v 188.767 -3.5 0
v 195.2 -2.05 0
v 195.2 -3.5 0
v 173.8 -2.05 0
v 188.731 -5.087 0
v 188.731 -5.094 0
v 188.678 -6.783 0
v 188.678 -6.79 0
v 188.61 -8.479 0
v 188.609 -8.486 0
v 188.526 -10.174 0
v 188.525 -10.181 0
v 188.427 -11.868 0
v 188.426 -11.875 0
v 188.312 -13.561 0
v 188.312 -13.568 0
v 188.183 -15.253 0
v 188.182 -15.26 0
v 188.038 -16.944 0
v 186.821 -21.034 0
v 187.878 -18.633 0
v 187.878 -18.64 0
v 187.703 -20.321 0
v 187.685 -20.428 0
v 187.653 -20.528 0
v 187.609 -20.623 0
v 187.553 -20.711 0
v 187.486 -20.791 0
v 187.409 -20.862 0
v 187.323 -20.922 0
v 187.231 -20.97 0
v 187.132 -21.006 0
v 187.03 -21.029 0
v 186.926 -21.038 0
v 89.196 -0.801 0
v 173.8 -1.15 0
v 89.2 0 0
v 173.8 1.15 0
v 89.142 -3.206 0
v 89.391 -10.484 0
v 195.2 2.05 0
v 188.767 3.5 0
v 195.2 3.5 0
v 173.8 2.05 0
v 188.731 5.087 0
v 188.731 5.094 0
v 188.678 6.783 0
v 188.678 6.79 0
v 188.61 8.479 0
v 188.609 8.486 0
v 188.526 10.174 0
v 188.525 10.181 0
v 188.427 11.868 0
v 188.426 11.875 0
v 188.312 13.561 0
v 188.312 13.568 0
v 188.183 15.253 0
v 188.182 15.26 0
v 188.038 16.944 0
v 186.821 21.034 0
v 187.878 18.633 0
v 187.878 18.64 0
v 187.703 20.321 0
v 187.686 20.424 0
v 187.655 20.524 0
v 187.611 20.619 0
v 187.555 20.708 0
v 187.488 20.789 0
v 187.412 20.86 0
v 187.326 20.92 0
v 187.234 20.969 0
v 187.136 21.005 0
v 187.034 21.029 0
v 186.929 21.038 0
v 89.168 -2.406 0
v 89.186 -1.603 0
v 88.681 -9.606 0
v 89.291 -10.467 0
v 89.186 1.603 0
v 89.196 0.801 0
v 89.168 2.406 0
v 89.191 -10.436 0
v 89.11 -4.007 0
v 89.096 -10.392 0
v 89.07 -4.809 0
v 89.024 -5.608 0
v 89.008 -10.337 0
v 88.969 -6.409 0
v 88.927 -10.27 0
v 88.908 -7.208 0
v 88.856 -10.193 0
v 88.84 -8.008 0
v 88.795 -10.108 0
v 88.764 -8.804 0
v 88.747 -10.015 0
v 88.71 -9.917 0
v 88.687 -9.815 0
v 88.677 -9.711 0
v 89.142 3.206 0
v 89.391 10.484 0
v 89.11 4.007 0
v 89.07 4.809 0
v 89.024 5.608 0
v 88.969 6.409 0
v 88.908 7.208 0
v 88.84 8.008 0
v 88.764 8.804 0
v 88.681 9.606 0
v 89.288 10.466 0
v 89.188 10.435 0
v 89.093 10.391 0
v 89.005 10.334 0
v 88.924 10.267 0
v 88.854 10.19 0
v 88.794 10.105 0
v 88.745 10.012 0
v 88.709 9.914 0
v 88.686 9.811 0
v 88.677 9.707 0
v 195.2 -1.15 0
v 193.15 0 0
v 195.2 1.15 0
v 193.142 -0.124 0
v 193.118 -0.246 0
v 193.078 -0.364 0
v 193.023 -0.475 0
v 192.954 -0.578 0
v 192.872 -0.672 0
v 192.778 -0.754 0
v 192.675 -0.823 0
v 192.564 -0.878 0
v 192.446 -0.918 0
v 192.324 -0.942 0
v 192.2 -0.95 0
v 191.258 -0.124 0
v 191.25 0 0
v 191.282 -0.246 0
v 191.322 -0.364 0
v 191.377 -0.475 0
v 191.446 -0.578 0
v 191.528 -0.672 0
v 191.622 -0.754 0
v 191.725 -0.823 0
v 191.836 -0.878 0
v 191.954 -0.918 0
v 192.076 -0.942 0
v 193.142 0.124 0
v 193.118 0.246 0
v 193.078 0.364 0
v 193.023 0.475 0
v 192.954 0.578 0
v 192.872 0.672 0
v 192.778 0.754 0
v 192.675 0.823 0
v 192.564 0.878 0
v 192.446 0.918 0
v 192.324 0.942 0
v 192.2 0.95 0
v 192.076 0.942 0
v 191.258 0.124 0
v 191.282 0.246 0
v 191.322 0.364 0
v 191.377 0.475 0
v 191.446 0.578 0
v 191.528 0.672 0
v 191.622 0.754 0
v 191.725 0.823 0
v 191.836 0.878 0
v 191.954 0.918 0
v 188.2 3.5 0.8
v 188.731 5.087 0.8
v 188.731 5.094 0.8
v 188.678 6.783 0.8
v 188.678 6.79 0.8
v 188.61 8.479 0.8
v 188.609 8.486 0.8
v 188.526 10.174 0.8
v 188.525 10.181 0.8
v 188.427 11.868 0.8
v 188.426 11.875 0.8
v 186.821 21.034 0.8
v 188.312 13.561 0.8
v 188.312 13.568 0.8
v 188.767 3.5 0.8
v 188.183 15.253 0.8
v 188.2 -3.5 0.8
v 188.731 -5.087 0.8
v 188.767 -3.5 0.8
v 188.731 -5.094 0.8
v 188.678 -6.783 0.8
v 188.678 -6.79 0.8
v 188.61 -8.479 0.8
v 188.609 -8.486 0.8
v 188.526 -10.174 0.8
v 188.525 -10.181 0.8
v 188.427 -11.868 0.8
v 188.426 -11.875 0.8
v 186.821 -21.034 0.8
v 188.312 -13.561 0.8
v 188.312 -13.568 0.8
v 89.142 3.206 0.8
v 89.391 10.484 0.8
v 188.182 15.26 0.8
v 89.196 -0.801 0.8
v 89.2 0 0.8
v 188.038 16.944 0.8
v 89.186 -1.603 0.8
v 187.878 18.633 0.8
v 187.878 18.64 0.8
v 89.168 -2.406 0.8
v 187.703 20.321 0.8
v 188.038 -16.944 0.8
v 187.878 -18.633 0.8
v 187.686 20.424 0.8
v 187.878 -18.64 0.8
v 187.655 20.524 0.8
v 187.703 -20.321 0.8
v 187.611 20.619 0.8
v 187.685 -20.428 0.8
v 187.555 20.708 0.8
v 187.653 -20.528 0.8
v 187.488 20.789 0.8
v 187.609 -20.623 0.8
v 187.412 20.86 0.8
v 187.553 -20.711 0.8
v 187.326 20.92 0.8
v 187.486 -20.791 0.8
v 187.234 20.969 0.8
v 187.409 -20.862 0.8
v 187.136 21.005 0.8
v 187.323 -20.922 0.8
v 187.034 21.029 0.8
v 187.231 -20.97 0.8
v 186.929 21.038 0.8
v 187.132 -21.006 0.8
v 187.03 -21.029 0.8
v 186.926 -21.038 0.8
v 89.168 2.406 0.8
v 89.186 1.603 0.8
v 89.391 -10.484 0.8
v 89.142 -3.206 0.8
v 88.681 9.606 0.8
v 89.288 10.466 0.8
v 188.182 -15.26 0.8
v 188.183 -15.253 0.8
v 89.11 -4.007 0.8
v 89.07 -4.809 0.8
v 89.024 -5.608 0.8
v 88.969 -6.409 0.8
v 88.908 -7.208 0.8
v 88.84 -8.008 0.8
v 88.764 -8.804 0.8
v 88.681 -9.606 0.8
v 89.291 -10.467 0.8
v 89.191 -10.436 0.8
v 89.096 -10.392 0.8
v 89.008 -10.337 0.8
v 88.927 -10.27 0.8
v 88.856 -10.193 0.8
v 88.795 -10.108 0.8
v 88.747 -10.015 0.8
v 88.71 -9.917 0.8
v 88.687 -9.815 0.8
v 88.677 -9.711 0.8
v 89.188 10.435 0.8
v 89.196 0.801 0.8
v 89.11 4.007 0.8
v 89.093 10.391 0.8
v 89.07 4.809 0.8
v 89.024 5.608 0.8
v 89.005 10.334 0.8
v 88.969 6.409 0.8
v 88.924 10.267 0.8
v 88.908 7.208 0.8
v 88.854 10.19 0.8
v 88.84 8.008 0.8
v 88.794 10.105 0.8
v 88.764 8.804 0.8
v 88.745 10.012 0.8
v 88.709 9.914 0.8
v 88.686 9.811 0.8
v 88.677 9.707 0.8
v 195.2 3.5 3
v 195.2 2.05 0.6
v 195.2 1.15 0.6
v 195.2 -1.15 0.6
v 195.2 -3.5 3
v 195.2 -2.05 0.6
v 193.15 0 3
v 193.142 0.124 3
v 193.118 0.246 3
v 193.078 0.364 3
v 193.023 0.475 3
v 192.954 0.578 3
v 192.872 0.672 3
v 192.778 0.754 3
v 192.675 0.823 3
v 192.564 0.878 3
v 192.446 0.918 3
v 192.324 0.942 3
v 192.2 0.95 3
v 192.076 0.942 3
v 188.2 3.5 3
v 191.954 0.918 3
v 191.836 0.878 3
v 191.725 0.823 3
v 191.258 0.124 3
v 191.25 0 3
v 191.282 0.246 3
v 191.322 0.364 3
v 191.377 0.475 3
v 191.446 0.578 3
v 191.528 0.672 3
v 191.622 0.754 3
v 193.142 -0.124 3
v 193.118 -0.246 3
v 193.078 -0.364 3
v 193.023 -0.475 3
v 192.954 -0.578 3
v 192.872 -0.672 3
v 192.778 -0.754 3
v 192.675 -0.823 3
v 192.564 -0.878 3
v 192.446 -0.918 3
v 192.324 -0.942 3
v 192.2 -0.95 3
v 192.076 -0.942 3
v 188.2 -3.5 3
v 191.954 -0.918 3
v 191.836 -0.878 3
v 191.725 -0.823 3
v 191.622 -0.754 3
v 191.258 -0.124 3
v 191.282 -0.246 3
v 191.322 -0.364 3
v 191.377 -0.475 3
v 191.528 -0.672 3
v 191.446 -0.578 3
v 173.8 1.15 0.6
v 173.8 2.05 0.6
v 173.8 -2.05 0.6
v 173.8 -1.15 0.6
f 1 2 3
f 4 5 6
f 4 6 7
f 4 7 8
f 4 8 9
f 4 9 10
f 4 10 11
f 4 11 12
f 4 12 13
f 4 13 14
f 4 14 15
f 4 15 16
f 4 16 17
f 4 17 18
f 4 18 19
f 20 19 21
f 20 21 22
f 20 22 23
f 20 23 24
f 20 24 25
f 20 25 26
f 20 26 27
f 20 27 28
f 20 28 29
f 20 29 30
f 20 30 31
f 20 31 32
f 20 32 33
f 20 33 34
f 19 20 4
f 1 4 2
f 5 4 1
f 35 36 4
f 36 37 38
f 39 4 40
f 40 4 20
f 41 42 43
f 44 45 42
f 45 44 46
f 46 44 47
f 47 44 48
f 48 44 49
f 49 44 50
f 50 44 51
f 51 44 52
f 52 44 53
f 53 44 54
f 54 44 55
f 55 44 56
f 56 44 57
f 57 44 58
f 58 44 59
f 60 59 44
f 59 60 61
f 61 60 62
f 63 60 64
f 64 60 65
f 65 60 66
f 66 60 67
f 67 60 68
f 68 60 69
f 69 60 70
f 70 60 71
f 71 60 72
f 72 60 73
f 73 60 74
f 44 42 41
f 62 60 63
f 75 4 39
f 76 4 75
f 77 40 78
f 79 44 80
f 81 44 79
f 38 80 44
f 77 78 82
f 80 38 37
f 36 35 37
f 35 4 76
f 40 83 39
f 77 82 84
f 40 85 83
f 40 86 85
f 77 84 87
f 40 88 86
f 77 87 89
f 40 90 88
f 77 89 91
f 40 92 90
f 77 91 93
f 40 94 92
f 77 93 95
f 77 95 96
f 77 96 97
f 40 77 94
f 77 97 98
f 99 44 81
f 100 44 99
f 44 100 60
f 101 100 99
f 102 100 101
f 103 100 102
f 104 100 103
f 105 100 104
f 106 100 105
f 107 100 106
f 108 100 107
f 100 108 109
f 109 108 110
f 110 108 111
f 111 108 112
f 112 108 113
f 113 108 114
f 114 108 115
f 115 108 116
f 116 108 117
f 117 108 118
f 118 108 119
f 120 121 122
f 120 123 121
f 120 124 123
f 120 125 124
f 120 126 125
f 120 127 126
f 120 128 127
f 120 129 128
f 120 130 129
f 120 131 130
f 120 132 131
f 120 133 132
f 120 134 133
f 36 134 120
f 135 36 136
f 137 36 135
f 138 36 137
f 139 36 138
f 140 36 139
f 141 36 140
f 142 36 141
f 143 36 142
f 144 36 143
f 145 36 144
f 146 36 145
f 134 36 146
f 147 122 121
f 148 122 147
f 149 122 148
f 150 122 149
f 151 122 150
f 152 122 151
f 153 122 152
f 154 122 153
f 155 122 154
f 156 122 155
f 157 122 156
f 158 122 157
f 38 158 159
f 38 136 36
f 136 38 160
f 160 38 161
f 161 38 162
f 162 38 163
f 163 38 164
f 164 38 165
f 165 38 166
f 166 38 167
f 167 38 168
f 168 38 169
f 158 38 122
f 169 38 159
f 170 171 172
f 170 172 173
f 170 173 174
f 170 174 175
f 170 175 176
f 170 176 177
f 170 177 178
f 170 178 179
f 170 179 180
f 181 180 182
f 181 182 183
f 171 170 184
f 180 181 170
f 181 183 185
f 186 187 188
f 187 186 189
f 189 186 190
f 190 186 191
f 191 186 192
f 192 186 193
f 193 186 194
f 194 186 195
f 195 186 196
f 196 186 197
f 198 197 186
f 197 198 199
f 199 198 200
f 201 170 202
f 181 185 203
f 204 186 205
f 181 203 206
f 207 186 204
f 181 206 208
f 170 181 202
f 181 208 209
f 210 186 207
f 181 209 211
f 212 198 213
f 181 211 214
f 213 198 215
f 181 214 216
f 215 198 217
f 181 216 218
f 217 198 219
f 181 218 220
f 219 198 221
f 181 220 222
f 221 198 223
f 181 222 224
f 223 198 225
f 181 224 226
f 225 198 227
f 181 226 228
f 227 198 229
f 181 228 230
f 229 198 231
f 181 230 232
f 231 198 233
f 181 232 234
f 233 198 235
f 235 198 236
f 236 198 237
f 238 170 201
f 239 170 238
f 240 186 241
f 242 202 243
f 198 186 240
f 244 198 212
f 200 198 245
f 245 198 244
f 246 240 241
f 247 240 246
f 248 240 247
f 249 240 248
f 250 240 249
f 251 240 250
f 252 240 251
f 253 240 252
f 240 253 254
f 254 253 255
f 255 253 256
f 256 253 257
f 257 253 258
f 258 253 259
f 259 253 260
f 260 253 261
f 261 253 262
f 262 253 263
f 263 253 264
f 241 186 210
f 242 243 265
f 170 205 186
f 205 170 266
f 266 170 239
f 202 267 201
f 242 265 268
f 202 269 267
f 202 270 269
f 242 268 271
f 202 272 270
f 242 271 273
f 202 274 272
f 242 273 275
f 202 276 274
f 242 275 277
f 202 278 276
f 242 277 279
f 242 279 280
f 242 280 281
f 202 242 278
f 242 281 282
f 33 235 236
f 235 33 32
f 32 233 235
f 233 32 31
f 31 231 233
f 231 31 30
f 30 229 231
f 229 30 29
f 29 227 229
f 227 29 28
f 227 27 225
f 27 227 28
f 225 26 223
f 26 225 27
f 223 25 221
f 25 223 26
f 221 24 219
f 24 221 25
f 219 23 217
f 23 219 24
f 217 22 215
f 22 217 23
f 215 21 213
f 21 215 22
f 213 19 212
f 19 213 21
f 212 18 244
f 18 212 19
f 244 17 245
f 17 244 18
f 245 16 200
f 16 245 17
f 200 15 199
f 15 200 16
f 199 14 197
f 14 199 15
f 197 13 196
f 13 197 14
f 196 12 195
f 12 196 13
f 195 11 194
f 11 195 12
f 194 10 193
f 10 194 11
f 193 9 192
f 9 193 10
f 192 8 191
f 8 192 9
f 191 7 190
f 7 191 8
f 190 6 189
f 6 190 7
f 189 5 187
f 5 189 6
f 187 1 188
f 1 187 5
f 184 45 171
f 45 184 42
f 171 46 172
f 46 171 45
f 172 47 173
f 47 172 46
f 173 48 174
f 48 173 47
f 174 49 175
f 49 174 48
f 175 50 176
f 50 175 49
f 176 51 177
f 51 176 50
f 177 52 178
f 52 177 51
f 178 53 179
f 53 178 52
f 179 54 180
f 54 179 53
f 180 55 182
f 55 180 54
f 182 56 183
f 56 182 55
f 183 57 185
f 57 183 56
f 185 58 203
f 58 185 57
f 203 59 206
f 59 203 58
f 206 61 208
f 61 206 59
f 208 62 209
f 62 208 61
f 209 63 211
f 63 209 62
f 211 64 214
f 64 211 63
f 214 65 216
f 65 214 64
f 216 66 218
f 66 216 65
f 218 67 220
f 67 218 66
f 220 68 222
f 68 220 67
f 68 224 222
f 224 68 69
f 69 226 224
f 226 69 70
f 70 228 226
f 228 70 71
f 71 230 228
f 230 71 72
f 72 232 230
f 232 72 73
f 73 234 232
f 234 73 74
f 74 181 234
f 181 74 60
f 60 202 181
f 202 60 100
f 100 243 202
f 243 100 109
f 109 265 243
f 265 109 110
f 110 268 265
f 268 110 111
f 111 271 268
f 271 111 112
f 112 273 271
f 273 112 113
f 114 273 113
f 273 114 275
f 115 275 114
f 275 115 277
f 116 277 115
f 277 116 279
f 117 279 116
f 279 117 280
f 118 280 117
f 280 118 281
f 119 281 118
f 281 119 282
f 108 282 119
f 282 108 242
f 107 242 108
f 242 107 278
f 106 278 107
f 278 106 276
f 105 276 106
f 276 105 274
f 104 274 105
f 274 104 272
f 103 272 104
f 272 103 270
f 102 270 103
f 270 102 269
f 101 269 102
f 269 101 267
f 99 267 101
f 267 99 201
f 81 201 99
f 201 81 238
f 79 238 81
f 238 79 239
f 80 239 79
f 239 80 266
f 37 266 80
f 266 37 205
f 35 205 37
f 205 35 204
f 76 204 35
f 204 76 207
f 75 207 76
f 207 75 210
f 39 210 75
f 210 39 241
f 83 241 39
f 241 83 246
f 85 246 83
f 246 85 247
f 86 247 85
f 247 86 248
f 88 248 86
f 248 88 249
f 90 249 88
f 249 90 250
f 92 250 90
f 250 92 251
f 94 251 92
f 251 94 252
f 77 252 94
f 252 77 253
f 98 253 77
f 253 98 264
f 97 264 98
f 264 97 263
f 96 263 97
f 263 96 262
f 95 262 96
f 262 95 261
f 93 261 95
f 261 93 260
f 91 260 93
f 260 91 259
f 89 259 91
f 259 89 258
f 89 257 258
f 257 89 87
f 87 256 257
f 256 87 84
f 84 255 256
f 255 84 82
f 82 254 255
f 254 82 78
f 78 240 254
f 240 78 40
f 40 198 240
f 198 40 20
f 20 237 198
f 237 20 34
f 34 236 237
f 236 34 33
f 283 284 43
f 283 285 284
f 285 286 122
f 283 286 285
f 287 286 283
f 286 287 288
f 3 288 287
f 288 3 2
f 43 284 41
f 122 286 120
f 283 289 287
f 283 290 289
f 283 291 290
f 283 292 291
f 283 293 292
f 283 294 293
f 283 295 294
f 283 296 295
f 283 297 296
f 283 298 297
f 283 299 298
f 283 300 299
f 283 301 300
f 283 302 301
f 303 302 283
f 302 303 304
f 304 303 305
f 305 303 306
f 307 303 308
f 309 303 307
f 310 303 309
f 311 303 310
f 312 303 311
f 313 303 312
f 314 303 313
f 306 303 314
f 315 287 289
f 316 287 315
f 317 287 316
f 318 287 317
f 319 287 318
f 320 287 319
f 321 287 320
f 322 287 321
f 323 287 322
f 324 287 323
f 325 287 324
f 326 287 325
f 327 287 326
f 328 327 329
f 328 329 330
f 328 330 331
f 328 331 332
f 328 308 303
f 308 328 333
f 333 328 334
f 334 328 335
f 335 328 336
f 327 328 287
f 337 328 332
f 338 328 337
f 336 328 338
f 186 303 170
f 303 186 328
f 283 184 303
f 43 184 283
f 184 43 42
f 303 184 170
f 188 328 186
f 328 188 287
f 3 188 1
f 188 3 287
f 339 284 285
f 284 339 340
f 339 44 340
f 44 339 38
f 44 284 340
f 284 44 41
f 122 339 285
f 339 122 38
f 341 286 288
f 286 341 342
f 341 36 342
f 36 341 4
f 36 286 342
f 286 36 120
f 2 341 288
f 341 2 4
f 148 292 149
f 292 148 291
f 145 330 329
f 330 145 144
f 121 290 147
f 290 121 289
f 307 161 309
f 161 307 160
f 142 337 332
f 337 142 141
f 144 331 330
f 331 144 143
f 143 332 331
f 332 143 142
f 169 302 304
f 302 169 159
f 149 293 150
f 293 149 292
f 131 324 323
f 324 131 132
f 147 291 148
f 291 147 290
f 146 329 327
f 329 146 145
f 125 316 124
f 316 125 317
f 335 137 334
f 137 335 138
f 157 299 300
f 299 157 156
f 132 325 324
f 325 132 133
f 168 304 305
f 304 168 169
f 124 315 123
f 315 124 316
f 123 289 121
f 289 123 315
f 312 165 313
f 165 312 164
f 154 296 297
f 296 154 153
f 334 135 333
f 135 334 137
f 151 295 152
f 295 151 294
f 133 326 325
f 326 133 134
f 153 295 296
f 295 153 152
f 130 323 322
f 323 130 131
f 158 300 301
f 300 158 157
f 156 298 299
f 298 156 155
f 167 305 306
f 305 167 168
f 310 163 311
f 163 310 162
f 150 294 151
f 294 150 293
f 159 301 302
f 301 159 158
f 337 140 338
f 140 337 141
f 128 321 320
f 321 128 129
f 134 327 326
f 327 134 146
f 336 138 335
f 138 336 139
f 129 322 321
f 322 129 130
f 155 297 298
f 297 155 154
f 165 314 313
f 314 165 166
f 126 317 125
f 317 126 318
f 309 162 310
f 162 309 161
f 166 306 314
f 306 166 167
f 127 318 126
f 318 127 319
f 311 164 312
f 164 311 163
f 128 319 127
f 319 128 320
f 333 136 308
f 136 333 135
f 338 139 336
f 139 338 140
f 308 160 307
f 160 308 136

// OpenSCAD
// Gen-DT — bobbin LID (top flange + locating tab). Print x12, flange face DOWN on the bed.
// CA-glue onto the hub top BEFORE winding. Tab = lap joint into the stator tab pocket; 1.75 mm filament
// pin through pin hole + stator ledge, trim flush. Lead slots carry both leads flush.
include <parameters.scad>;
$fn = 48;
module sector_2d(r_in, r_out, ang) {
    polygon([
        for (a = [-ang/2 : ang/24 : ang/2]) [r_in*cos(a), r_in*sin(a)],
        for (a = [ang/2 : -ang/24 : -ang/2]) [r_out*cos(a), r_out*sin(a)]
    ]);
}
module footprint_2d() { offset(r=wall) sector_2d(coil_id_r, coil_od_r, span_deg); }
module hub_2d()       { offset(delta=-coil_core_inset) sector_2d(coil_id_r, coil_od_r, span_deg); }

difference() {
    union() {
        linear_extrude(flange_t) footprint_2d();
        translate([coil_od_r + 0.2, -tab_w/2, 0]) cube([tab_len, tab_w, tab_h]);
    }
    translate([coil_mount_r, 0, -0.1]) cylinder(d=pin_d, h=tab_h + 1);
    for (y = [lead_y, -lead_y])
        translate([coil_od_r - coil_core_inset - 0.5, y - lead_slot_w/2, -0.1])
            cube([coil_core_inset + tab_len + 2, lead_slot_w, lead_groove_d + 0.1]);
}
